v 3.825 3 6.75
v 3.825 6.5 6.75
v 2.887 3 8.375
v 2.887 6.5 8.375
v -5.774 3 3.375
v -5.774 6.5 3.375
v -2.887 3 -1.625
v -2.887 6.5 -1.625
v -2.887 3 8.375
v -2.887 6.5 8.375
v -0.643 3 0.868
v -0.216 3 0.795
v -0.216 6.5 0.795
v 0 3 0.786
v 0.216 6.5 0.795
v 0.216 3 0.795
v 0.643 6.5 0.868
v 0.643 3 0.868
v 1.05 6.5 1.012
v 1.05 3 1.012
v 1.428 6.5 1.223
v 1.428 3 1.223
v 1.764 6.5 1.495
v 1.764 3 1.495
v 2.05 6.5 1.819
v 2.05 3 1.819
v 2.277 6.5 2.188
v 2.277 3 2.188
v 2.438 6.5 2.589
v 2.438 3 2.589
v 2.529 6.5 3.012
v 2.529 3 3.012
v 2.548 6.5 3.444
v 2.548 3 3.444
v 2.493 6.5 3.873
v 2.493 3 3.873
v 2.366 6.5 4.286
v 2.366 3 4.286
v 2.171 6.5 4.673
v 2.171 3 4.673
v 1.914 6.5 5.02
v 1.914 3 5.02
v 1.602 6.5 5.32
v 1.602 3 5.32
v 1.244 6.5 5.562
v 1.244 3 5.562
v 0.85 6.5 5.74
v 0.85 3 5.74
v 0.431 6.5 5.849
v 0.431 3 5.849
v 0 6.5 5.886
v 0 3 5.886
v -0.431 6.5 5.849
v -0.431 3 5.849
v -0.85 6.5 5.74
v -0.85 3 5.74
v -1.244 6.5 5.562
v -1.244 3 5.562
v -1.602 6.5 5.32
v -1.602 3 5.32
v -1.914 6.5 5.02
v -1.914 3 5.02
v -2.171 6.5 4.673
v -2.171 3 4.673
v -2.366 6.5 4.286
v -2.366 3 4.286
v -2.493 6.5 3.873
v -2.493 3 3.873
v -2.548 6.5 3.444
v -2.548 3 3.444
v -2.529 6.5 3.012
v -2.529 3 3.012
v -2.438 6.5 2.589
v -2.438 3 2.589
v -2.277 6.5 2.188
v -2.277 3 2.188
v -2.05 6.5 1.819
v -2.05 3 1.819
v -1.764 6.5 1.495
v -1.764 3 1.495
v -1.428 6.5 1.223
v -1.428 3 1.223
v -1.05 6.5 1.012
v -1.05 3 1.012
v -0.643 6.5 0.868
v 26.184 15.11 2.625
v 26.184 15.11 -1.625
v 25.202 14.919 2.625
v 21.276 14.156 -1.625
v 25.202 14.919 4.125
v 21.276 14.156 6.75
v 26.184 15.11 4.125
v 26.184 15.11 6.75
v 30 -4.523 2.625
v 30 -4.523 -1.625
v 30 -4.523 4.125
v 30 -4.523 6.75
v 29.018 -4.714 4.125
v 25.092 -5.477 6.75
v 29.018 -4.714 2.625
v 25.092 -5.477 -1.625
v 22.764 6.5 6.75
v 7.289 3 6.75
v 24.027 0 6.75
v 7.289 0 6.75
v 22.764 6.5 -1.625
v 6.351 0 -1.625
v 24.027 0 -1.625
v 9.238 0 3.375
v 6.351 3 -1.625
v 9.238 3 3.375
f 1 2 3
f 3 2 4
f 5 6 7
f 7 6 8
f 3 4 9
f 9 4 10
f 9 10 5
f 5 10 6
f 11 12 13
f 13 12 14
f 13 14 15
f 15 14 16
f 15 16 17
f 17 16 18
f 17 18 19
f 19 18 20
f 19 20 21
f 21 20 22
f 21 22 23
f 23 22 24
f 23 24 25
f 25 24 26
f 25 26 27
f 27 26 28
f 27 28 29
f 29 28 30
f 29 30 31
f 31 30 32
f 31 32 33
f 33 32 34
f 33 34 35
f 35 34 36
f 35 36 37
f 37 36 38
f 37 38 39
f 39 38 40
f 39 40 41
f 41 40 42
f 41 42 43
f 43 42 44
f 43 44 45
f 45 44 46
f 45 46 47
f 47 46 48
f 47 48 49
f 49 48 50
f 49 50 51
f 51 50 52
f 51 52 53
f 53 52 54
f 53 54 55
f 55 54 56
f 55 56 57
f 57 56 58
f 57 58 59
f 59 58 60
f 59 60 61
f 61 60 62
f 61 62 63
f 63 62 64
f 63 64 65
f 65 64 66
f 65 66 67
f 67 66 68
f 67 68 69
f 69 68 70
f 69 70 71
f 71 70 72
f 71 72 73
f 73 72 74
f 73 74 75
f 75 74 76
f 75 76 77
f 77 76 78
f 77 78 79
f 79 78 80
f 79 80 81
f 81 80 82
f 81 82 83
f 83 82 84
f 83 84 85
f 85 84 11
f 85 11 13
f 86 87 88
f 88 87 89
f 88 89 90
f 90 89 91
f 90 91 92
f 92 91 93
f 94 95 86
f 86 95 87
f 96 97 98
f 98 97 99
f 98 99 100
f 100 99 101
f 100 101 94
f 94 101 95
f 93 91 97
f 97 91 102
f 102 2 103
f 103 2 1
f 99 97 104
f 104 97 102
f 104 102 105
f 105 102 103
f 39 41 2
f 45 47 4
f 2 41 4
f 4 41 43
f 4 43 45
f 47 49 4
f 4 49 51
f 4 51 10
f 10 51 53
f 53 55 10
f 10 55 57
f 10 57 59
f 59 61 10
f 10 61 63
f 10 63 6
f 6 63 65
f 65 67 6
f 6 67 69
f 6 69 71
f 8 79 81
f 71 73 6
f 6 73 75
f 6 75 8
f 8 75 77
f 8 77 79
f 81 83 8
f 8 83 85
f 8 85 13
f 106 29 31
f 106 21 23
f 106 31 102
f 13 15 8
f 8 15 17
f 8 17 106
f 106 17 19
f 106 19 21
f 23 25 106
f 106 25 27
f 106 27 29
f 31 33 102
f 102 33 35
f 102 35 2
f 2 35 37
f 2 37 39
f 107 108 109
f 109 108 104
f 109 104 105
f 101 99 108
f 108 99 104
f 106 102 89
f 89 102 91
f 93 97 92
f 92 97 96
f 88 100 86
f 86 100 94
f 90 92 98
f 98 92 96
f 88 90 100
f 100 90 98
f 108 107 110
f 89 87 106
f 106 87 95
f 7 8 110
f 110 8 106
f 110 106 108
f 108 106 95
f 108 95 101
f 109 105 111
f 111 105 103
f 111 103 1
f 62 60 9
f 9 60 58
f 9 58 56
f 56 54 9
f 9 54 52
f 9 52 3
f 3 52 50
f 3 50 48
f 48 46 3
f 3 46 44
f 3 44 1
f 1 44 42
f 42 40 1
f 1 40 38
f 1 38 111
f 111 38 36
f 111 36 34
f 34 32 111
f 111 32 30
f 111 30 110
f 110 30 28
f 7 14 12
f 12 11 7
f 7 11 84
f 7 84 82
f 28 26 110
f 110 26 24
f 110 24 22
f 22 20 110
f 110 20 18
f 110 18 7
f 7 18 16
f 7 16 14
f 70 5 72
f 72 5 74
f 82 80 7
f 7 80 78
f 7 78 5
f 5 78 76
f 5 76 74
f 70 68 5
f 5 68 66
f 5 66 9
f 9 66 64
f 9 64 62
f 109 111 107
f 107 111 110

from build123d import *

# Parameters (mm, degrees)
SKETCH1_W                = 25
SKETCH1_H                = 6.75
BOSS_EXTRUDE1_DEPTH      = 6.5
BOSS_EXTRUDE3_DEPTH      = 3.375
BOSS_EXTRUDE3_DEPTH_BACK = 5
SKETCH4_W                = 1
SKETCH4_H                = 1.5
CUT_EXTRUDE1_DEPTH       = 23
BOSS_EXTRUDE4_DEPTH      = 6.5
SKETCH6_R                = 2.55
CUT_EXTRUDE2_DEPTH       = 10
BOSS_EXTRUDE5_REACH      = 12
CUT_EXTRUDE3_DEPTH       = 3


with BuildPart() as part:
    # Sketch1 → Boss-Extrude1 (new body)
    with BuildSketch(Plane(origin=(0, 0, 0), x_dir=(1, 0, 0), z_dir=(0, 1, 0))):
        with Locations((12.5, -3.375)):
            Rectangle(SKETCH1_W, SKETCH1_H)
    extrude(amount=BOSS_EXTRUDE1_DEPTH)

    # Sketch3 → Boss-Extrude3 (add, two sides)
    with BuildSketch(Plane.XY.offset(3.375)) as boss_extrude3_sk:
        Polygon((21.275684175, 14.155521181), (26.183820092, 15.109566157), (30, -4.522977512), (25.091864083, -5.477022488), align=None)
    extrude(amount=BOSS_EXTRUDE3_DEPTH)
    extrude(boss_extrude3_sk.sketch, amount=-BOSS_EXTRUDE3_DEPTH_BACK)

    # Sketch4 → Cut-Extrude1 (cut)
    with BuildSketch(Plane(origin=(-1.876769127, 9.65514015, 0), x_dir=(0.981627183, 0.190808995, 0), z_dir=(-0.190808995, 0.981627183, 0))):
        with Locations((28.085790708, -3.375)):
            Rectangle(SKETCH4_W, SKETCH4_H)
    extrude(amount=-CUT_EXTRUDE1_DEPTH, mode=Mode.SUBTRACT)

    # Sketch5 → Boss-Extrude4 (add)
    with BuildSketch(Plane(origin=(0, 6.5, 0), x_dir=(1, 0, 0), z_dir=(0, 1, 0))):
        Polygon((-5.773502692, -3.375), (-2.886751346, -8.375), (2.886751346, -8.375), (5.773502692, -3.375), (2.886751346, 1.625), (-2.886751346, 1.625), align=None)
    extrude(amount=-BOSS_EXTRUDE4_DEPTH)

    # Sketch6 → Cut-Extrude2 (cut)
    with BuildSketch(Plane(origin=(0, 6.5, 0), x_dir=(1, 0, 0), z_dir=(0, 1, 0))):
        with Locations((0, -3.335615973)):
            Circle(SKETCH6_R)
    extrude(amount=-CUT_EXTRUDE2_DEPTH, mode=Mode.SUBTRACT)

    # Sketch7 → Boss-Extrude5 (add, up to next)
    with BuildSketch(Plane(origin=(0, 0, -1.625), x_dir=(-1, 0, 0), z_dir=(0, 0, -1)), mode=Mode.PRIVATE) as boss_extrude5_sk1:
        Polygon((-2.886751346, 0), (-24.027238758, 0), (-25.091864083, -5.477022488), (-30, -4.522977512), (-26.183820092, 15.109566157), (-21.275684175, 14.155521181), (-22.763766749, 6.5), (-2.886751346, 6.5), align=None)
    boss_extrude5_tool1 = extrude(boss_extrude5_sk1.sketch, amount=-BOSS_EXTRUDE5_REACH, mode=Mode.PRIVATE) - part.part
    add(boss_extrude5_tool1.solids().sort_by_distance((18.499322, 3.902268, -1.625))[0])

    # Sketch8 → Cut-Extrude3 (cut)
    with BuildSketch(Plane(origin=(0, 0, 0), x_dir=(-1, 0, 0), z_dir=(0, -1, 0))):
        Polygon((-4.618802154, -11.375), (4.618802154, -11.375), (9.237604307, -3.375), (4.618802154, 4.625), (-4.618802154, 4.625), (-9.237604307, -3.375), align=None)
    extrude(amount=-CUT_EXTRUDE3_DEPTH, mode=Mode.SUBTRACT)


solid = part.part
